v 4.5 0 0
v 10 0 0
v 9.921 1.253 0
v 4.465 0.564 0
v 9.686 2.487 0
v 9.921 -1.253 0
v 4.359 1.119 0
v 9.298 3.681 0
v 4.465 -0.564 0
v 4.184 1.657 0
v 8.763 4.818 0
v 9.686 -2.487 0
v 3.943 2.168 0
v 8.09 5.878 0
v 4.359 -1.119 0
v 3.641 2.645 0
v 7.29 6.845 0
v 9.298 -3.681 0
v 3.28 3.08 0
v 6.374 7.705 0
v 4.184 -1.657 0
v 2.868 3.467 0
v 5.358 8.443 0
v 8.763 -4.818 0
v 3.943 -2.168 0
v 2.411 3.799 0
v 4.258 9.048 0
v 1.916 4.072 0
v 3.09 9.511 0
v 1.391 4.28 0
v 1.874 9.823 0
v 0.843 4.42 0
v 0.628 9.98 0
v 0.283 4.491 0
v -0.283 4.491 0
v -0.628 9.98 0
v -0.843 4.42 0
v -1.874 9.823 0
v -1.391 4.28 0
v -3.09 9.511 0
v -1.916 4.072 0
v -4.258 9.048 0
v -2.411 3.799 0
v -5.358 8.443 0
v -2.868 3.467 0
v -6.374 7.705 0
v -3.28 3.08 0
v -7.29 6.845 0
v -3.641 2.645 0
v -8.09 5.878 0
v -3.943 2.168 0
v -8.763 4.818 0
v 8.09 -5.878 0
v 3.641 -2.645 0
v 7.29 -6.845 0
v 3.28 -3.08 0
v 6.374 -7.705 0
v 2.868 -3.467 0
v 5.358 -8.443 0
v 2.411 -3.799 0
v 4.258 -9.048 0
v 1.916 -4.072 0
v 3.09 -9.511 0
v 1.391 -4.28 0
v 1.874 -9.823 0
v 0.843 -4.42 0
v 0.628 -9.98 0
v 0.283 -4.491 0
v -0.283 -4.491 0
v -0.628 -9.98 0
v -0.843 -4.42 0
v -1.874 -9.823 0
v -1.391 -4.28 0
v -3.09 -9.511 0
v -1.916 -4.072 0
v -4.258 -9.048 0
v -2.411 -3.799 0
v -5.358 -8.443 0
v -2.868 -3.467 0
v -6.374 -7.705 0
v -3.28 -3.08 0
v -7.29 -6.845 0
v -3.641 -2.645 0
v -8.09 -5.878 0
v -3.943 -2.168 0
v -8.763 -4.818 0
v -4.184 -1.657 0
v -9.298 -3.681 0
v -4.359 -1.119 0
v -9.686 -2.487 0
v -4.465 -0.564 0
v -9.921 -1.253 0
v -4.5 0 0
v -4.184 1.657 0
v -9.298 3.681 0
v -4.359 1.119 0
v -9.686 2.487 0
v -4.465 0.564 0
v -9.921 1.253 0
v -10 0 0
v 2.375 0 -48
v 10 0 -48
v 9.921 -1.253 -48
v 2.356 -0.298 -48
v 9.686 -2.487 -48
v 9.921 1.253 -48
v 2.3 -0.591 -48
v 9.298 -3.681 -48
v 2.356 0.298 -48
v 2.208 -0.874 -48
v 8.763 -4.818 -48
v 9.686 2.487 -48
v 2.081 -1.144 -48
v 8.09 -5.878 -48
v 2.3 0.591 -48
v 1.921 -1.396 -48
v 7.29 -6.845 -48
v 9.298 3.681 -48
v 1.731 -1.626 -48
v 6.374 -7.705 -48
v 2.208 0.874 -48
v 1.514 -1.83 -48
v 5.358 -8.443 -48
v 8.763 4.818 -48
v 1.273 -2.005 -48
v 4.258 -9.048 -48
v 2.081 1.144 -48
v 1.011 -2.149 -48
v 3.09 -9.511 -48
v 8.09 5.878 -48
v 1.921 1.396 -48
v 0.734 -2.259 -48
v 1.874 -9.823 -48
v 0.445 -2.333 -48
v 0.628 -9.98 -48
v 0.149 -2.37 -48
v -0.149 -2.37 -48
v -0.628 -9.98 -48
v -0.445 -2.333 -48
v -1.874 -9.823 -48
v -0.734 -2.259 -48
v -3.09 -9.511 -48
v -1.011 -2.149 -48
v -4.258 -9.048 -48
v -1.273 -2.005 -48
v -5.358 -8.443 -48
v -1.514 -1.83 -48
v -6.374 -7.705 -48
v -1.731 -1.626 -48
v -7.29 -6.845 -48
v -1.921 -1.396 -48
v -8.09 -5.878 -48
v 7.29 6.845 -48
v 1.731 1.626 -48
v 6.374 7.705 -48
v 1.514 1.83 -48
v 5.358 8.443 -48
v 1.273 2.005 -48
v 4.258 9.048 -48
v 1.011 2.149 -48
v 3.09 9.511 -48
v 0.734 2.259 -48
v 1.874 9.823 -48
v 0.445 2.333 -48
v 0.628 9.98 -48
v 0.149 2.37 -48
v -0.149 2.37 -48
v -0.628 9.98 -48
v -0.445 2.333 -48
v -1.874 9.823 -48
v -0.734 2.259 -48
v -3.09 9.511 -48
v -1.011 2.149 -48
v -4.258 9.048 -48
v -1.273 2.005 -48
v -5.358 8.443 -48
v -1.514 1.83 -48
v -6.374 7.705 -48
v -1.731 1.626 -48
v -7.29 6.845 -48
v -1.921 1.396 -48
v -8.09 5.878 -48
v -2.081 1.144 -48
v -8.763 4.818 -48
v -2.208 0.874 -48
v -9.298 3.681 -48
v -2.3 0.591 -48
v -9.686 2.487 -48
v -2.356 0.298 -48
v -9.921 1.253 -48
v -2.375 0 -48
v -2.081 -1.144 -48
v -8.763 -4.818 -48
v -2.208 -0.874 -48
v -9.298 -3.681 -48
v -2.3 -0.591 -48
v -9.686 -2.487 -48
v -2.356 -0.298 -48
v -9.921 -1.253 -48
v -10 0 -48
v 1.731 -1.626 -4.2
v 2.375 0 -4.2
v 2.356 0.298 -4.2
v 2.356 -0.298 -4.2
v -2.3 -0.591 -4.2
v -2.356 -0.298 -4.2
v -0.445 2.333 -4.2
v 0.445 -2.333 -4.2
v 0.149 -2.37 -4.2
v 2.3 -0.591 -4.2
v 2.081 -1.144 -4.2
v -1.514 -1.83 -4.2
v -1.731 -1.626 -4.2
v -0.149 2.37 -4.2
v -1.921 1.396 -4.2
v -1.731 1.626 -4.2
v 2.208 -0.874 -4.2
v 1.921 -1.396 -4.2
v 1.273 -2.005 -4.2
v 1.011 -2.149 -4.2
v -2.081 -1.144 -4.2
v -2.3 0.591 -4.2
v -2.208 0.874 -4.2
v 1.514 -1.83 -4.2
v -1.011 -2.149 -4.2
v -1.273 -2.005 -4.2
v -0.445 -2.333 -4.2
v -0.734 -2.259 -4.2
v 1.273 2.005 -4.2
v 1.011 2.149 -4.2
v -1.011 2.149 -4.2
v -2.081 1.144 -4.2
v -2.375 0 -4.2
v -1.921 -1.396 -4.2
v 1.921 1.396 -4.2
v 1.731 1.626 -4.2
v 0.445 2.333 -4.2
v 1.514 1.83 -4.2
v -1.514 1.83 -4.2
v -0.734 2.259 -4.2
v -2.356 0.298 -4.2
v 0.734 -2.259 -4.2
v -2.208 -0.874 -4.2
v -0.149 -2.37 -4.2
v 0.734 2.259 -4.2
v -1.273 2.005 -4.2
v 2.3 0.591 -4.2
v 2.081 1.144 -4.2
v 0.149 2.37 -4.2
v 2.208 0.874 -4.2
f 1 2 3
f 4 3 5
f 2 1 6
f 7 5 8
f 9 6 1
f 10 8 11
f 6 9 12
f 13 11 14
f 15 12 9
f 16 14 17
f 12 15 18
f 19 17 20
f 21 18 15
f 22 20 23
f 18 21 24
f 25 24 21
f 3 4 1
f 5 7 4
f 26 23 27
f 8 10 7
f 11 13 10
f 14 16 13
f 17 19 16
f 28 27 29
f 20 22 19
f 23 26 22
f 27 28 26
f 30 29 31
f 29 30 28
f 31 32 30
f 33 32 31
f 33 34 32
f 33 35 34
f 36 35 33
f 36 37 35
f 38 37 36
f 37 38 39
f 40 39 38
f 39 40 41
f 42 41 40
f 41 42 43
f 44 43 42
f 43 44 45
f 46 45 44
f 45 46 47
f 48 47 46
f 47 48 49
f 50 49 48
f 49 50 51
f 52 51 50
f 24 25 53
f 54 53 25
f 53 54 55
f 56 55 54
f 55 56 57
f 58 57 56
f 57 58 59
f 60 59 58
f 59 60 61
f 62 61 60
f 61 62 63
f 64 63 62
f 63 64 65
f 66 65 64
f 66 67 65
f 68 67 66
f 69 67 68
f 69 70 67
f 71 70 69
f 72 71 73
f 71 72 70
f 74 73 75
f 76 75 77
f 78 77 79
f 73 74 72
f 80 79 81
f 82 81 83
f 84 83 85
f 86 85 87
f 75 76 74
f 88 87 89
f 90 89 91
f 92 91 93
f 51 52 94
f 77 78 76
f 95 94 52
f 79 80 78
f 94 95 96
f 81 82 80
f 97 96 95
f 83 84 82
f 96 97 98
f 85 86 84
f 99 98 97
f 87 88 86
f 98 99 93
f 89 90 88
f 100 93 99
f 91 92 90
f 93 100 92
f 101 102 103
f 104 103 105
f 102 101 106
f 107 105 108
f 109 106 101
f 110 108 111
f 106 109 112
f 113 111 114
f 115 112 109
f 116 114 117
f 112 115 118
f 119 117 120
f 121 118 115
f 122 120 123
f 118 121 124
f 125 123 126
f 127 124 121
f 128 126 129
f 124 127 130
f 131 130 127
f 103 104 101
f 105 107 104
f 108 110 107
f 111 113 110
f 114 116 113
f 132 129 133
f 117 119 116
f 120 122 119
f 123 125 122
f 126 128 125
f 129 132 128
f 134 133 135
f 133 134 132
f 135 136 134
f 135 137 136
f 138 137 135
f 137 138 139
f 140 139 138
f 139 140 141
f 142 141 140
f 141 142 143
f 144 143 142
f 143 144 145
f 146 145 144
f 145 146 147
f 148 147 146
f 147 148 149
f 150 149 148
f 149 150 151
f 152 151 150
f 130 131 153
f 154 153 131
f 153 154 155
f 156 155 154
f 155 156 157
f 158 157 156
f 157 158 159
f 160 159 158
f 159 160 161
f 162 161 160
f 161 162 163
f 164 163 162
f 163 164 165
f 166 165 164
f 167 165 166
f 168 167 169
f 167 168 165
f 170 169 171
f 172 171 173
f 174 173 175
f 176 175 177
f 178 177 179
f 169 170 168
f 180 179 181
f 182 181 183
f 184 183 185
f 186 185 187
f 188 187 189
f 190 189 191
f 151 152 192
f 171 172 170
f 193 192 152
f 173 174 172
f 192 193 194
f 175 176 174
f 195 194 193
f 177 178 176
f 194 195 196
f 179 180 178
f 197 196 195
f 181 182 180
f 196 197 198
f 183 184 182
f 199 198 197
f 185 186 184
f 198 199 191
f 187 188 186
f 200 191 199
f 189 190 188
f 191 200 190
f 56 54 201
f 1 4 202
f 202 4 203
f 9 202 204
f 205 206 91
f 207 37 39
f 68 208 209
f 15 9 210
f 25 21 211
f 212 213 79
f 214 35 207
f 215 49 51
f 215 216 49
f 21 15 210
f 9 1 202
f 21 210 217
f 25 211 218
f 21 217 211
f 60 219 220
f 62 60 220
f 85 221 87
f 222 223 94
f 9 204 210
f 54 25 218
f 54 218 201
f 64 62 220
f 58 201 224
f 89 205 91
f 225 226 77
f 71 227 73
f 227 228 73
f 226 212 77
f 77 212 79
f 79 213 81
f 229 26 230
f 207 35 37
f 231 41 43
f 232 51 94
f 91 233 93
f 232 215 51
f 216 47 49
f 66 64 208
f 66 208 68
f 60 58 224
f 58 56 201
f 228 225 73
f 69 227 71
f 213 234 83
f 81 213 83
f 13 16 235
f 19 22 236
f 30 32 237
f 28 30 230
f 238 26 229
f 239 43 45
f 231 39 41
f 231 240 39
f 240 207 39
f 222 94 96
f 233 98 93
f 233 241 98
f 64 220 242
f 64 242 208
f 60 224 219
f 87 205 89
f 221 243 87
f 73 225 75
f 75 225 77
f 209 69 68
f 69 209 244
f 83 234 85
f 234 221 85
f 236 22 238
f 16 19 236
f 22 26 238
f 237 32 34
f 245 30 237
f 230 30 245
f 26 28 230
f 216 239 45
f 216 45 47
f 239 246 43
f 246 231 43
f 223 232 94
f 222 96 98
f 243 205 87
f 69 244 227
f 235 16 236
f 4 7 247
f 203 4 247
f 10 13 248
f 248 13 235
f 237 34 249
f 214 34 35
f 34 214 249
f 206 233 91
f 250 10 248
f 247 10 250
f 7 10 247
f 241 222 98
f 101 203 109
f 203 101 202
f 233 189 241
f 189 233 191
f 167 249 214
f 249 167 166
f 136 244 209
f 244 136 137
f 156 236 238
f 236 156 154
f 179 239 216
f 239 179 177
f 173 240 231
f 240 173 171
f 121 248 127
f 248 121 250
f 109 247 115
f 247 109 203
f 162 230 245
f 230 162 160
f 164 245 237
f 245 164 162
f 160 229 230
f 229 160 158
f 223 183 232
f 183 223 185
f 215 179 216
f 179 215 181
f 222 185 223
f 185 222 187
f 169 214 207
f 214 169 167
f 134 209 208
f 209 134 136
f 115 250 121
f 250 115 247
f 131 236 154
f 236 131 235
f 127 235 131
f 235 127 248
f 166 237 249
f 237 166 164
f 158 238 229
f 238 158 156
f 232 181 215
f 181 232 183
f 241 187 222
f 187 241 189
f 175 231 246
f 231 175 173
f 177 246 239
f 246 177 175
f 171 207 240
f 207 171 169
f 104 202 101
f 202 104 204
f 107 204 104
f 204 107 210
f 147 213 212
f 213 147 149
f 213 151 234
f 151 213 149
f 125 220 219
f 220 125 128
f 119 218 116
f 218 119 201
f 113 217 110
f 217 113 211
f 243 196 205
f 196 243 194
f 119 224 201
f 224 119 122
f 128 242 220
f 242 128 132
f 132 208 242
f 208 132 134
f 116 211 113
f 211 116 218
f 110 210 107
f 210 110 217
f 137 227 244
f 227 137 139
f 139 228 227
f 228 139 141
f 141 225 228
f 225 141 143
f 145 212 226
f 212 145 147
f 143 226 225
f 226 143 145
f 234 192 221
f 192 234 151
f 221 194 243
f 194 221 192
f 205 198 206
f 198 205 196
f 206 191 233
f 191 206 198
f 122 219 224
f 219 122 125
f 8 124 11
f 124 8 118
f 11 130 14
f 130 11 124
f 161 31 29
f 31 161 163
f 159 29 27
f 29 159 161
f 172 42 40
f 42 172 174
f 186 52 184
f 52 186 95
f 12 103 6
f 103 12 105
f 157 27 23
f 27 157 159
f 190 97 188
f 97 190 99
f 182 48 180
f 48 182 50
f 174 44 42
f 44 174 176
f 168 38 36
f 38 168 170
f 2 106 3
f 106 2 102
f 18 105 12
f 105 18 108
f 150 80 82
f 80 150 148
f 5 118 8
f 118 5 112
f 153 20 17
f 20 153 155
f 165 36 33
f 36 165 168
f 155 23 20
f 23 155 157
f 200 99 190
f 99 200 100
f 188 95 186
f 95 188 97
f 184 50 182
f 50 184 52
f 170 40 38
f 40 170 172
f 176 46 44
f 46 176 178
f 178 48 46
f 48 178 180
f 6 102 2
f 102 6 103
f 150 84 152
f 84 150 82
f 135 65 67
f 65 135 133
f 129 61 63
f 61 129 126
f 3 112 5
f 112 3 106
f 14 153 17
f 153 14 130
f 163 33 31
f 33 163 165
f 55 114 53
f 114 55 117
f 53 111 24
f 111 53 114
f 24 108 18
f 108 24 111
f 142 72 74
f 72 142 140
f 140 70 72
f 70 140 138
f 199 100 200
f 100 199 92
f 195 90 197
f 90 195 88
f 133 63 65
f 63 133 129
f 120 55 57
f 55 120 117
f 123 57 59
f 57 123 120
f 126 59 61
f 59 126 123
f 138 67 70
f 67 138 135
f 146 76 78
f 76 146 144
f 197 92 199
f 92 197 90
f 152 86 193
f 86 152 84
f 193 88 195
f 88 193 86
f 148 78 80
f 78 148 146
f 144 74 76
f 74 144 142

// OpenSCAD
$fn = 50;


difference() {
	union() {
		translate(v = [0, 0, -48.0000000000]) {
			cylinder(h = 48, r = 10.0000000000);
		}
		cylinder(h = 0, r = 13.0000000000);
	}
	union() {
		translate(v = [0, 0, 0]) {
			rotate(a = [0, 0, 0]) {
				difference() {
					union() {
						#translate(v = [0, 0, -48.0000000000]) {
							cylinder(h = 48, r = 2.2500000000);
						}
						#translate(v = [0, 0, -4.2000000000]) {
							cylinder(h = 4.2000000000, r1 = 2.3750000000, r2 = 4.5000000000);
						}
						#translate(v = [0, 0, -48.0000000000]) {
							cylinder(h = 48, r = 2.3750000000);
						}
						#translate(v = [0, 0, -48.0000000000]) {
							cylinder(h = 48, r = 2.2500000000);
						}
					}
					union();
				}
			}
		}
	}
}
